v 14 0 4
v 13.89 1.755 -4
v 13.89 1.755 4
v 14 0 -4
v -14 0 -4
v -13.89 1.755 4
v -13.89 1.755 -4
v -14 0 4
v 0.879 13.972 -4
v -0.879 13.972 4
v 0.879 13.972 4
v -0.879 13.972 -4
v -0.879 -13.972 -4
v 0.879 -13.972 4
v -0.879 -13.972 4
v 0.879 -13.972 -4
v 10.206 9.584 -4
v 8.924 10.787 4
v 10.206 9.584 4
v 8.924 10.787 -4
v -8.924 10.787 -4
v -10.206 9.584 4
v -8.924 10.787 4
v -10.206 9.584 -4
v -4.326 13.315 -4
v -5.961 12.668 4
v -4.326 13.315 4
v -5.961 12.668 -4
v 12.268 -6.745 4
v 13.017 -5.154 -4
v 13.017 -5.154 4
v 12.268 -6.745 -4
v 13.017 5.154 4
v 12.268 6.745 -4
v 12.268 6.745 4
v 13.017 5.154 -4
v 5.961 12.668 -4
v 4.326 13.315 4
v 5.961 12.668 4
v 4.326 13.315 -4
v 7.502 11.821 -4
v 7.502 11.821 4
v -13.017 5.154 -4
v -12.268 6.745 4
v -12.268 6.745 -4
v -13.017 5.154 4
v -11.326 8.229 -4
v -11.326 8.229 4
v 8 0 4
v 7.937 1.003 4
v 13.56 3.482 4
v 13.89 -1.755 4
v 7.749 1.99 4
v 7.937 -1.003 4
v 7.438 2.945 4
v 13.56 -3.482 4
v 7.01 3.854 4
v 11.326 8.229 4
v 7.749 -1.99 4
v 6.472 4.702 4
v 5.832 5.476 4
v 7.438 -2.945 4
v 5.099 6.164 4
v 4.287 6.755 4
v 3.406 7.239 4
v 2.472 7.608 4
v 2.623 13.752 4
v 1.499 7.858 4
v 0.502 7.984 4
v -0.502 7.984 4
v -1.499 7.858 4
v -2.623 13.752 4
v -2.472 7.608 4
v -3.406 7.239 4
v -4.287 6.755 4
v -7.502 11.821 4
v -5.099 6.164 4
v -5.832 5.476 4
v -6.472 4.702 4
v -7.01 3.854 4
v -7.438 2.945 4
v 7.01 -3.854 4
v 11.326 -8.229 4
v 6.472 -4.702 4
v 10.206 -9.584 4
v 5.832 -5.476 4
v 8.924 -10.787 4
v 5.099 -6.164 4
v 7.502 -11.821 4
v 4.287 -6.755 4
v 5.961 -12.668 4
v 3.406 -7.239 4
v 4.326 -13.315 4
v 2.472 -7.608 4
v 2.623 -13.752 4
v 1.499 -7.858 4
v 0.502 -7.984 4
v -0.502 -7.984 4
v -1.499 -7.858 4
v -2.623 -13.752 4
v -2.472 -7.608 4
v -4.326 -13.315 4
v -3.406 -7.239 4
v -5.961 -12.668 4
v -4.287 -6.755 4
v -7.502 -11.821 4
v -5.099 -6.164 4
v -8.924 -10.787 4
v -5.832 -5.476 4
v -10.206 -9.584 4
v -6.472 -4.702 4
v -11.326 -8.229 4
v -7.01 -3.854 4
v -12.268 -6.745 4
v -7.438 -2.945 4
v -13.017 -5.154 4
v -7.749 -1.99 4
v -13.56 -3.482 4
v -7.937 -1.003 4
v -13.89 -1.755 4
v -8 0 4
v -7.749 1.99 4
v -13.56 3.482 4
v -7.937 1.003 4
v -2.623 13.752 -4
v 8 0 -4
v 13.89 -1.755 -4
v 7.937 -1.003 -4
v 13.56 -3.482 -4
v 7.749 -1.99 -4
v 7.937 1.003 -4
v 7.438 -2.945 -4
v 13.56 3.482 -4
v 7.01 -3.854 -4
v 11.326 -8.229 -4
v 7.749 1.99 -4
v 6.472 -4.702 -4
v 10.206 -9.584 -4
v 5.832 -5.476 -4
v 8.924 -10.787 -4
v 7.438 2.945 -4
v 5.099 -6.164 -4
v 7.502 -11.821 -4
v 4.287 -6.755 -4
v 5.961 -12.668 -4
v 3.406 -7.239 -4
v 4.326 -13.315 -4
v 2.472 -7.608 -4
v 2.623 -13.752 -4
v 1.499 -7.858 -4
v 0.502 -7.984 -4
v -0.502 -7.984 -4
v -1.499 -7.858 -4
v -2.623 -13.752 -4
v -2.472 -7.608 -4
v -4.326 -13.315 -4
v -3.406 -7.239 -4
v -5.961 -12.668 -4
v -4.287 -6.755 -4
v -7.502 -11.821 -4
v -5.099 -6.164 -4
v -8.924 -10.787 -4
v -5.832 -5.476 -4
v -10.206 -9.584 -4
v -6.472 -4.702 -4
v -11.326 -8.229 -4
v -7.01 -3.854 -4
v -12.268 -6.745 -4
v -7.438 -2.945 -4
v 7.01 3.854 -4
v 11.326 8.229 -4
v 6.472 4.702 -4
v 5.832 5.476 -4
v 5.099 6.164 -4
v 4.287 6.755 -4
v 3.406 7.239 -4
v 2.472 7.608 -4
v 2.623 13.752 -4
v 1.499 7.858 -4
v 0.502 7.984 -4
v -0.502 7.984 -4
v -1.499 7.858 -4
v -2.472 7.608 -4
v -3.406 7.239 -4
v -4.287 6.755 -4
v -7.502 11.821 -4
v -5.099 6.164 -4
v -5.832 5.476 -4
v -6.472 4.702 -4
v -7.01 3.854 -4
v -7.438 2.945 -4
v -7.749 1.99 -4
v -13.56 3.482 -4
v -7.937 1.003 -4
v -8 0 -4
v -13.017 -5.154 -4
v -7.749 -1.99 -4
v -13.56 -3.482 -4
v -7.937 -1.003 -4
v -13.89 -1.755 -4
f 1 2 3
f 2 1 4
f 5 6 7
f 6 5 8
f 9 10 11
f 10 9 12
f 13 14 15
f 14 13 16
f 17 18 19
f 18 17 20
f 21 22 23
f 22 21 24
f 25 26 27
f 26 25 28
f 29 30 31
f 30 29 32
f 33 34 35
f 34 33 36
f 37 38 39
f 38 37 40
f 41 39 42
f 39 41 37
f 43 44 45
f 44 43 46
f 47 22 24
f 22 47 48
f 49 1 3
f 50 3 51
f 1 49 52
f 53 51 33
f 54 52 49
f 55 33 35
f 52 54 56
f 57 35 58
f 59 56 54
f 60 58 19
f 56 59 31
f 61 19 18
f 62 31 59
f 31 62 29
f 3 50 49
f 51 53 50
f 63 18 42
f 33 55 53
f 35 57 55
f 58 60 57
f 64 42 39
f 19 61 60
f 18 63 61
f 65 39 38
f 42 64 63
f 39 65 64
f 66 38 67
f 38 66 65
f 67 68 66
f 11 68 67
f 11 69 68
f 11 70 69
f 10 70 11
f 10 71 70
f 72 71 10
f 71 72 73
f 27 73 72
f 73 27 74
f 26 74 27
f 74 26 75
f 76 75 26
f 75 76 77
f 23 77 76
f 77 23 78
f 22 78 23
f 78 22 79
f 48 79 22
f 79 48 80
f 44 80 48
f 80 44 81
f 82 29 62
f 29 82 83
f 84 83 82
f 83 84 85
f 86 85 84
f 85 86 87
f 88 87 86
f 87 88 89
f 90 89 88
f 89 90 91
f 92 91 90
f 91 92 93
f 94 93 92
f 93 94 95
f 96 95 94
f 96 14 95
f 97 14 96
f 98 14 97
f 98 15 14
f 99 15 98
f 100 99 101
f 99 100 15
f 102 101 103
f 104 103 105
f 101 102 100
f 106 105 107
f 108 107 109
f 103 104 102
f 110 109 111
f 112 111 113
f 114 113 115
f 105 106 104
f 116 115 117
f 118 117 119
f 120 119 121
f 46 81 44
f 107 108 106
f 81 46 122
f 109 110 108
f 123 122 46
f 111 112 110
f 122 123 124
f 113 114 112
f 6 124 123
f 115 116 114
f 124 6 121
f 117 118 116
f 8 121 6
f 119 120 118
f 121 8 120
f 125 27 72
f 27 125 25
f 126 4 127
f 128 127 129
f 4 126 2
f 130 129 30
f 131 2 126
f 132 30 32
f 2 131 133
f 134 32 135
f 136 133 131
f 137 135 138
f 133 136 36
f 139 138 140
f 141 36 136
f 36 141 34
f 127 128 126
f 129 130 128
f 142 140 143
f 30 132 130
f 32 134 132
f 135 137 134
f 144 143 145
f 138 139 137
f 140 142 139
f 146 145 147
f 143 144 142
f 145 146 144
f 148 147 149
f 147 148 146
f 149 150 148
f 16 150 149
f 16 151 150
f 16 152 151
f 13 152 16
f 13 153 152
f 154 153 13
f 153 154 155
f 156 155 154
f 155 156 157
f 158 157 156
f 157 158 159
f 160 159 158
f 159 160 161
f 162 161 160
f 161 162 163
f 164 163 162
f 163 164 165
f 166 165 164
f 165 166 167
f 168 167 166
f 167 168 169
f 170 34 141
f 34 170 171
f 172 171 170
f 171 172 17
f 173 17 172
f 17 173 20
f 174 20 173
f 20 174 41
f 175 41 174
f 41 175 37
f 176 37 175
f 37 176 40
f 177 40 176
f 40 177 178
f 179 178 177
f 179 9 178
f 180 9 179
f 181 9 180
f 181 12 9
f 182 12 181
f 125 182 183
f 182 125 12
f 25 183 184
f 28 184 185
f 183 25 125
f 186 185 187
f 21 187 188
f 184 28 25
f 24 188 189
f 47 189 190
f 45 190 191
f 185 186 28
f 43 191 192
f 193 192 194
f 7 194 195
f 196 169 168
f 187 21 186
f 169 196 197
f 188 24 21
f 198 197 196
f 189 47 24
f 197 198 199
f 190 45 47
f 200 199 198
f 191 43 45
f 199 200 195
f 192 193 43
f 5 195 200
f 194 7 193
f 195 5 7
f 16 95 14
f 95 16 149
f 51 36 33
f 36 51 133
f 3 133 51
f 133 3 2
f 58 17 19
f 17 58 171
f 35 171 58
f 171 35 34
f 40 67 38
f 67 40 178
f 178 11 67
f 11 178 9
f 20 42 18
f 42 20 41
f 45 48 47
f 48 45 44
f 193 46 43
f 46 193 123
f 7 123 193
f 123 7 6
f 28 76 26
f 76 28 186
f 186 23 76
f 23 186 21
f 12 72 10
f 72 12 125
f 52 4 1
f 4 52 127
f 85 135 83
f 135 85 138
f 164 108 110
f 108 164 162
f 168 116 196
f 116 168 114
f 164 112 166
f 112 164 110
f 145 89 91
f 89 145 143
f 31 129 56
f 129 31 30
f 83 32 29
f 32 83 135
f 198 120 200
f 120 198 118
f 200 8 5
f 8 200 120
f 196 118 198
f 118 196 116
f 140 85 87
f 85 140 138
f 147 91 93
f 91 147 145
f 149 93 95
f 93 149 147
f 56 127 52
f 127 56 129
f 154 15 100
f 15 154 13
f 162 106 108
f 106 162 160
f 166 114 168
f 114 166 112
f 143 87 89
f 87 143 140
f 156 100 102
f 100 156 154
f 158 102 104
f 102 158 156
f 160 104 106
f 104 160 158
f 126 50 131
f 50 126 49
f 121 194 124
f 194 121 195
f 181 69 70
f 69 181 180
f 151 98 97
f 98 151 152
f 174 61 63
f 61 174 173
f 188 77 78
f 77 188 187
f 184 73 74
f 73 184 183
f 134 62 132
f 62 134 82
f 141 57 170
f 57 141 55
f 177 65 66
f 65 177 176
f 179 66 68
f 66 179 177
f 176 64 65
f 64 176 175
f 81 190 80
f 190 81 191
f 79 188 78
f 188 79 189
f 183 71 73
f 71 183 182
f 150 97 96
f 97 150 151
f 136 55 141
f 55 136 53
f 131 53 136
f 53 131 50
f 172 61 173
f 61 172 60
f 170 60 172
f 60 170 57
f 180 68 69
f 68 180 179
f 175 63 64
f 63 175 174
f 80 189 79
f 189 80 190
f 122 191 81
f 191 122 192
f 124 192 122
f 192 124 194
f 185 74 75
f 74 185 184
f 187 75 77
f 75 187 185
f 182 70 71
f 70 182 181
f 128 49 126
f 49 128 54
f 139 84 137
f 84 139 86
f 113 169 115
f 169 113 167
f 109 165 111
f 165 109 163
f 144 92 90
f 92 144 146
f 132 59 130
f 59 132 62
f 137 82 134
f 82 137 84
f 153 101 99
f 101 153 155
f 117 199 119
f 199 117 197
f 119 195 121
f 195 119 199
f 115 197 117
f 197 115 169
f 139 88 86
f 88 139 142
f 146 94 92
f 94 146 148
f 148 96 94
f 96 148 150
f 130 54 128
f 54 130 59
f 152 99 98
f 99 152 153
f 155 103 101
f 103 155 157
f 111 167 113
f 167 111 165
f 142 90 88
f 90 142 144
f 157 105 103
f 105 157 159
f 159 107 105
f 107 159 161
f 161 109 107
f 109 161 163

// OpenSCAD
$fn = 50;


difference() {
	union() {
		translate(v = [0, 0, -4.0000000000]) {
			cylinder(h = 8, r = 14.0000000000);
		}
	}
	union() {
		translate(v = [0, 0, -100.0000000000]) {
			cylinder(h = 200, r = 8);
		}
	}
}
